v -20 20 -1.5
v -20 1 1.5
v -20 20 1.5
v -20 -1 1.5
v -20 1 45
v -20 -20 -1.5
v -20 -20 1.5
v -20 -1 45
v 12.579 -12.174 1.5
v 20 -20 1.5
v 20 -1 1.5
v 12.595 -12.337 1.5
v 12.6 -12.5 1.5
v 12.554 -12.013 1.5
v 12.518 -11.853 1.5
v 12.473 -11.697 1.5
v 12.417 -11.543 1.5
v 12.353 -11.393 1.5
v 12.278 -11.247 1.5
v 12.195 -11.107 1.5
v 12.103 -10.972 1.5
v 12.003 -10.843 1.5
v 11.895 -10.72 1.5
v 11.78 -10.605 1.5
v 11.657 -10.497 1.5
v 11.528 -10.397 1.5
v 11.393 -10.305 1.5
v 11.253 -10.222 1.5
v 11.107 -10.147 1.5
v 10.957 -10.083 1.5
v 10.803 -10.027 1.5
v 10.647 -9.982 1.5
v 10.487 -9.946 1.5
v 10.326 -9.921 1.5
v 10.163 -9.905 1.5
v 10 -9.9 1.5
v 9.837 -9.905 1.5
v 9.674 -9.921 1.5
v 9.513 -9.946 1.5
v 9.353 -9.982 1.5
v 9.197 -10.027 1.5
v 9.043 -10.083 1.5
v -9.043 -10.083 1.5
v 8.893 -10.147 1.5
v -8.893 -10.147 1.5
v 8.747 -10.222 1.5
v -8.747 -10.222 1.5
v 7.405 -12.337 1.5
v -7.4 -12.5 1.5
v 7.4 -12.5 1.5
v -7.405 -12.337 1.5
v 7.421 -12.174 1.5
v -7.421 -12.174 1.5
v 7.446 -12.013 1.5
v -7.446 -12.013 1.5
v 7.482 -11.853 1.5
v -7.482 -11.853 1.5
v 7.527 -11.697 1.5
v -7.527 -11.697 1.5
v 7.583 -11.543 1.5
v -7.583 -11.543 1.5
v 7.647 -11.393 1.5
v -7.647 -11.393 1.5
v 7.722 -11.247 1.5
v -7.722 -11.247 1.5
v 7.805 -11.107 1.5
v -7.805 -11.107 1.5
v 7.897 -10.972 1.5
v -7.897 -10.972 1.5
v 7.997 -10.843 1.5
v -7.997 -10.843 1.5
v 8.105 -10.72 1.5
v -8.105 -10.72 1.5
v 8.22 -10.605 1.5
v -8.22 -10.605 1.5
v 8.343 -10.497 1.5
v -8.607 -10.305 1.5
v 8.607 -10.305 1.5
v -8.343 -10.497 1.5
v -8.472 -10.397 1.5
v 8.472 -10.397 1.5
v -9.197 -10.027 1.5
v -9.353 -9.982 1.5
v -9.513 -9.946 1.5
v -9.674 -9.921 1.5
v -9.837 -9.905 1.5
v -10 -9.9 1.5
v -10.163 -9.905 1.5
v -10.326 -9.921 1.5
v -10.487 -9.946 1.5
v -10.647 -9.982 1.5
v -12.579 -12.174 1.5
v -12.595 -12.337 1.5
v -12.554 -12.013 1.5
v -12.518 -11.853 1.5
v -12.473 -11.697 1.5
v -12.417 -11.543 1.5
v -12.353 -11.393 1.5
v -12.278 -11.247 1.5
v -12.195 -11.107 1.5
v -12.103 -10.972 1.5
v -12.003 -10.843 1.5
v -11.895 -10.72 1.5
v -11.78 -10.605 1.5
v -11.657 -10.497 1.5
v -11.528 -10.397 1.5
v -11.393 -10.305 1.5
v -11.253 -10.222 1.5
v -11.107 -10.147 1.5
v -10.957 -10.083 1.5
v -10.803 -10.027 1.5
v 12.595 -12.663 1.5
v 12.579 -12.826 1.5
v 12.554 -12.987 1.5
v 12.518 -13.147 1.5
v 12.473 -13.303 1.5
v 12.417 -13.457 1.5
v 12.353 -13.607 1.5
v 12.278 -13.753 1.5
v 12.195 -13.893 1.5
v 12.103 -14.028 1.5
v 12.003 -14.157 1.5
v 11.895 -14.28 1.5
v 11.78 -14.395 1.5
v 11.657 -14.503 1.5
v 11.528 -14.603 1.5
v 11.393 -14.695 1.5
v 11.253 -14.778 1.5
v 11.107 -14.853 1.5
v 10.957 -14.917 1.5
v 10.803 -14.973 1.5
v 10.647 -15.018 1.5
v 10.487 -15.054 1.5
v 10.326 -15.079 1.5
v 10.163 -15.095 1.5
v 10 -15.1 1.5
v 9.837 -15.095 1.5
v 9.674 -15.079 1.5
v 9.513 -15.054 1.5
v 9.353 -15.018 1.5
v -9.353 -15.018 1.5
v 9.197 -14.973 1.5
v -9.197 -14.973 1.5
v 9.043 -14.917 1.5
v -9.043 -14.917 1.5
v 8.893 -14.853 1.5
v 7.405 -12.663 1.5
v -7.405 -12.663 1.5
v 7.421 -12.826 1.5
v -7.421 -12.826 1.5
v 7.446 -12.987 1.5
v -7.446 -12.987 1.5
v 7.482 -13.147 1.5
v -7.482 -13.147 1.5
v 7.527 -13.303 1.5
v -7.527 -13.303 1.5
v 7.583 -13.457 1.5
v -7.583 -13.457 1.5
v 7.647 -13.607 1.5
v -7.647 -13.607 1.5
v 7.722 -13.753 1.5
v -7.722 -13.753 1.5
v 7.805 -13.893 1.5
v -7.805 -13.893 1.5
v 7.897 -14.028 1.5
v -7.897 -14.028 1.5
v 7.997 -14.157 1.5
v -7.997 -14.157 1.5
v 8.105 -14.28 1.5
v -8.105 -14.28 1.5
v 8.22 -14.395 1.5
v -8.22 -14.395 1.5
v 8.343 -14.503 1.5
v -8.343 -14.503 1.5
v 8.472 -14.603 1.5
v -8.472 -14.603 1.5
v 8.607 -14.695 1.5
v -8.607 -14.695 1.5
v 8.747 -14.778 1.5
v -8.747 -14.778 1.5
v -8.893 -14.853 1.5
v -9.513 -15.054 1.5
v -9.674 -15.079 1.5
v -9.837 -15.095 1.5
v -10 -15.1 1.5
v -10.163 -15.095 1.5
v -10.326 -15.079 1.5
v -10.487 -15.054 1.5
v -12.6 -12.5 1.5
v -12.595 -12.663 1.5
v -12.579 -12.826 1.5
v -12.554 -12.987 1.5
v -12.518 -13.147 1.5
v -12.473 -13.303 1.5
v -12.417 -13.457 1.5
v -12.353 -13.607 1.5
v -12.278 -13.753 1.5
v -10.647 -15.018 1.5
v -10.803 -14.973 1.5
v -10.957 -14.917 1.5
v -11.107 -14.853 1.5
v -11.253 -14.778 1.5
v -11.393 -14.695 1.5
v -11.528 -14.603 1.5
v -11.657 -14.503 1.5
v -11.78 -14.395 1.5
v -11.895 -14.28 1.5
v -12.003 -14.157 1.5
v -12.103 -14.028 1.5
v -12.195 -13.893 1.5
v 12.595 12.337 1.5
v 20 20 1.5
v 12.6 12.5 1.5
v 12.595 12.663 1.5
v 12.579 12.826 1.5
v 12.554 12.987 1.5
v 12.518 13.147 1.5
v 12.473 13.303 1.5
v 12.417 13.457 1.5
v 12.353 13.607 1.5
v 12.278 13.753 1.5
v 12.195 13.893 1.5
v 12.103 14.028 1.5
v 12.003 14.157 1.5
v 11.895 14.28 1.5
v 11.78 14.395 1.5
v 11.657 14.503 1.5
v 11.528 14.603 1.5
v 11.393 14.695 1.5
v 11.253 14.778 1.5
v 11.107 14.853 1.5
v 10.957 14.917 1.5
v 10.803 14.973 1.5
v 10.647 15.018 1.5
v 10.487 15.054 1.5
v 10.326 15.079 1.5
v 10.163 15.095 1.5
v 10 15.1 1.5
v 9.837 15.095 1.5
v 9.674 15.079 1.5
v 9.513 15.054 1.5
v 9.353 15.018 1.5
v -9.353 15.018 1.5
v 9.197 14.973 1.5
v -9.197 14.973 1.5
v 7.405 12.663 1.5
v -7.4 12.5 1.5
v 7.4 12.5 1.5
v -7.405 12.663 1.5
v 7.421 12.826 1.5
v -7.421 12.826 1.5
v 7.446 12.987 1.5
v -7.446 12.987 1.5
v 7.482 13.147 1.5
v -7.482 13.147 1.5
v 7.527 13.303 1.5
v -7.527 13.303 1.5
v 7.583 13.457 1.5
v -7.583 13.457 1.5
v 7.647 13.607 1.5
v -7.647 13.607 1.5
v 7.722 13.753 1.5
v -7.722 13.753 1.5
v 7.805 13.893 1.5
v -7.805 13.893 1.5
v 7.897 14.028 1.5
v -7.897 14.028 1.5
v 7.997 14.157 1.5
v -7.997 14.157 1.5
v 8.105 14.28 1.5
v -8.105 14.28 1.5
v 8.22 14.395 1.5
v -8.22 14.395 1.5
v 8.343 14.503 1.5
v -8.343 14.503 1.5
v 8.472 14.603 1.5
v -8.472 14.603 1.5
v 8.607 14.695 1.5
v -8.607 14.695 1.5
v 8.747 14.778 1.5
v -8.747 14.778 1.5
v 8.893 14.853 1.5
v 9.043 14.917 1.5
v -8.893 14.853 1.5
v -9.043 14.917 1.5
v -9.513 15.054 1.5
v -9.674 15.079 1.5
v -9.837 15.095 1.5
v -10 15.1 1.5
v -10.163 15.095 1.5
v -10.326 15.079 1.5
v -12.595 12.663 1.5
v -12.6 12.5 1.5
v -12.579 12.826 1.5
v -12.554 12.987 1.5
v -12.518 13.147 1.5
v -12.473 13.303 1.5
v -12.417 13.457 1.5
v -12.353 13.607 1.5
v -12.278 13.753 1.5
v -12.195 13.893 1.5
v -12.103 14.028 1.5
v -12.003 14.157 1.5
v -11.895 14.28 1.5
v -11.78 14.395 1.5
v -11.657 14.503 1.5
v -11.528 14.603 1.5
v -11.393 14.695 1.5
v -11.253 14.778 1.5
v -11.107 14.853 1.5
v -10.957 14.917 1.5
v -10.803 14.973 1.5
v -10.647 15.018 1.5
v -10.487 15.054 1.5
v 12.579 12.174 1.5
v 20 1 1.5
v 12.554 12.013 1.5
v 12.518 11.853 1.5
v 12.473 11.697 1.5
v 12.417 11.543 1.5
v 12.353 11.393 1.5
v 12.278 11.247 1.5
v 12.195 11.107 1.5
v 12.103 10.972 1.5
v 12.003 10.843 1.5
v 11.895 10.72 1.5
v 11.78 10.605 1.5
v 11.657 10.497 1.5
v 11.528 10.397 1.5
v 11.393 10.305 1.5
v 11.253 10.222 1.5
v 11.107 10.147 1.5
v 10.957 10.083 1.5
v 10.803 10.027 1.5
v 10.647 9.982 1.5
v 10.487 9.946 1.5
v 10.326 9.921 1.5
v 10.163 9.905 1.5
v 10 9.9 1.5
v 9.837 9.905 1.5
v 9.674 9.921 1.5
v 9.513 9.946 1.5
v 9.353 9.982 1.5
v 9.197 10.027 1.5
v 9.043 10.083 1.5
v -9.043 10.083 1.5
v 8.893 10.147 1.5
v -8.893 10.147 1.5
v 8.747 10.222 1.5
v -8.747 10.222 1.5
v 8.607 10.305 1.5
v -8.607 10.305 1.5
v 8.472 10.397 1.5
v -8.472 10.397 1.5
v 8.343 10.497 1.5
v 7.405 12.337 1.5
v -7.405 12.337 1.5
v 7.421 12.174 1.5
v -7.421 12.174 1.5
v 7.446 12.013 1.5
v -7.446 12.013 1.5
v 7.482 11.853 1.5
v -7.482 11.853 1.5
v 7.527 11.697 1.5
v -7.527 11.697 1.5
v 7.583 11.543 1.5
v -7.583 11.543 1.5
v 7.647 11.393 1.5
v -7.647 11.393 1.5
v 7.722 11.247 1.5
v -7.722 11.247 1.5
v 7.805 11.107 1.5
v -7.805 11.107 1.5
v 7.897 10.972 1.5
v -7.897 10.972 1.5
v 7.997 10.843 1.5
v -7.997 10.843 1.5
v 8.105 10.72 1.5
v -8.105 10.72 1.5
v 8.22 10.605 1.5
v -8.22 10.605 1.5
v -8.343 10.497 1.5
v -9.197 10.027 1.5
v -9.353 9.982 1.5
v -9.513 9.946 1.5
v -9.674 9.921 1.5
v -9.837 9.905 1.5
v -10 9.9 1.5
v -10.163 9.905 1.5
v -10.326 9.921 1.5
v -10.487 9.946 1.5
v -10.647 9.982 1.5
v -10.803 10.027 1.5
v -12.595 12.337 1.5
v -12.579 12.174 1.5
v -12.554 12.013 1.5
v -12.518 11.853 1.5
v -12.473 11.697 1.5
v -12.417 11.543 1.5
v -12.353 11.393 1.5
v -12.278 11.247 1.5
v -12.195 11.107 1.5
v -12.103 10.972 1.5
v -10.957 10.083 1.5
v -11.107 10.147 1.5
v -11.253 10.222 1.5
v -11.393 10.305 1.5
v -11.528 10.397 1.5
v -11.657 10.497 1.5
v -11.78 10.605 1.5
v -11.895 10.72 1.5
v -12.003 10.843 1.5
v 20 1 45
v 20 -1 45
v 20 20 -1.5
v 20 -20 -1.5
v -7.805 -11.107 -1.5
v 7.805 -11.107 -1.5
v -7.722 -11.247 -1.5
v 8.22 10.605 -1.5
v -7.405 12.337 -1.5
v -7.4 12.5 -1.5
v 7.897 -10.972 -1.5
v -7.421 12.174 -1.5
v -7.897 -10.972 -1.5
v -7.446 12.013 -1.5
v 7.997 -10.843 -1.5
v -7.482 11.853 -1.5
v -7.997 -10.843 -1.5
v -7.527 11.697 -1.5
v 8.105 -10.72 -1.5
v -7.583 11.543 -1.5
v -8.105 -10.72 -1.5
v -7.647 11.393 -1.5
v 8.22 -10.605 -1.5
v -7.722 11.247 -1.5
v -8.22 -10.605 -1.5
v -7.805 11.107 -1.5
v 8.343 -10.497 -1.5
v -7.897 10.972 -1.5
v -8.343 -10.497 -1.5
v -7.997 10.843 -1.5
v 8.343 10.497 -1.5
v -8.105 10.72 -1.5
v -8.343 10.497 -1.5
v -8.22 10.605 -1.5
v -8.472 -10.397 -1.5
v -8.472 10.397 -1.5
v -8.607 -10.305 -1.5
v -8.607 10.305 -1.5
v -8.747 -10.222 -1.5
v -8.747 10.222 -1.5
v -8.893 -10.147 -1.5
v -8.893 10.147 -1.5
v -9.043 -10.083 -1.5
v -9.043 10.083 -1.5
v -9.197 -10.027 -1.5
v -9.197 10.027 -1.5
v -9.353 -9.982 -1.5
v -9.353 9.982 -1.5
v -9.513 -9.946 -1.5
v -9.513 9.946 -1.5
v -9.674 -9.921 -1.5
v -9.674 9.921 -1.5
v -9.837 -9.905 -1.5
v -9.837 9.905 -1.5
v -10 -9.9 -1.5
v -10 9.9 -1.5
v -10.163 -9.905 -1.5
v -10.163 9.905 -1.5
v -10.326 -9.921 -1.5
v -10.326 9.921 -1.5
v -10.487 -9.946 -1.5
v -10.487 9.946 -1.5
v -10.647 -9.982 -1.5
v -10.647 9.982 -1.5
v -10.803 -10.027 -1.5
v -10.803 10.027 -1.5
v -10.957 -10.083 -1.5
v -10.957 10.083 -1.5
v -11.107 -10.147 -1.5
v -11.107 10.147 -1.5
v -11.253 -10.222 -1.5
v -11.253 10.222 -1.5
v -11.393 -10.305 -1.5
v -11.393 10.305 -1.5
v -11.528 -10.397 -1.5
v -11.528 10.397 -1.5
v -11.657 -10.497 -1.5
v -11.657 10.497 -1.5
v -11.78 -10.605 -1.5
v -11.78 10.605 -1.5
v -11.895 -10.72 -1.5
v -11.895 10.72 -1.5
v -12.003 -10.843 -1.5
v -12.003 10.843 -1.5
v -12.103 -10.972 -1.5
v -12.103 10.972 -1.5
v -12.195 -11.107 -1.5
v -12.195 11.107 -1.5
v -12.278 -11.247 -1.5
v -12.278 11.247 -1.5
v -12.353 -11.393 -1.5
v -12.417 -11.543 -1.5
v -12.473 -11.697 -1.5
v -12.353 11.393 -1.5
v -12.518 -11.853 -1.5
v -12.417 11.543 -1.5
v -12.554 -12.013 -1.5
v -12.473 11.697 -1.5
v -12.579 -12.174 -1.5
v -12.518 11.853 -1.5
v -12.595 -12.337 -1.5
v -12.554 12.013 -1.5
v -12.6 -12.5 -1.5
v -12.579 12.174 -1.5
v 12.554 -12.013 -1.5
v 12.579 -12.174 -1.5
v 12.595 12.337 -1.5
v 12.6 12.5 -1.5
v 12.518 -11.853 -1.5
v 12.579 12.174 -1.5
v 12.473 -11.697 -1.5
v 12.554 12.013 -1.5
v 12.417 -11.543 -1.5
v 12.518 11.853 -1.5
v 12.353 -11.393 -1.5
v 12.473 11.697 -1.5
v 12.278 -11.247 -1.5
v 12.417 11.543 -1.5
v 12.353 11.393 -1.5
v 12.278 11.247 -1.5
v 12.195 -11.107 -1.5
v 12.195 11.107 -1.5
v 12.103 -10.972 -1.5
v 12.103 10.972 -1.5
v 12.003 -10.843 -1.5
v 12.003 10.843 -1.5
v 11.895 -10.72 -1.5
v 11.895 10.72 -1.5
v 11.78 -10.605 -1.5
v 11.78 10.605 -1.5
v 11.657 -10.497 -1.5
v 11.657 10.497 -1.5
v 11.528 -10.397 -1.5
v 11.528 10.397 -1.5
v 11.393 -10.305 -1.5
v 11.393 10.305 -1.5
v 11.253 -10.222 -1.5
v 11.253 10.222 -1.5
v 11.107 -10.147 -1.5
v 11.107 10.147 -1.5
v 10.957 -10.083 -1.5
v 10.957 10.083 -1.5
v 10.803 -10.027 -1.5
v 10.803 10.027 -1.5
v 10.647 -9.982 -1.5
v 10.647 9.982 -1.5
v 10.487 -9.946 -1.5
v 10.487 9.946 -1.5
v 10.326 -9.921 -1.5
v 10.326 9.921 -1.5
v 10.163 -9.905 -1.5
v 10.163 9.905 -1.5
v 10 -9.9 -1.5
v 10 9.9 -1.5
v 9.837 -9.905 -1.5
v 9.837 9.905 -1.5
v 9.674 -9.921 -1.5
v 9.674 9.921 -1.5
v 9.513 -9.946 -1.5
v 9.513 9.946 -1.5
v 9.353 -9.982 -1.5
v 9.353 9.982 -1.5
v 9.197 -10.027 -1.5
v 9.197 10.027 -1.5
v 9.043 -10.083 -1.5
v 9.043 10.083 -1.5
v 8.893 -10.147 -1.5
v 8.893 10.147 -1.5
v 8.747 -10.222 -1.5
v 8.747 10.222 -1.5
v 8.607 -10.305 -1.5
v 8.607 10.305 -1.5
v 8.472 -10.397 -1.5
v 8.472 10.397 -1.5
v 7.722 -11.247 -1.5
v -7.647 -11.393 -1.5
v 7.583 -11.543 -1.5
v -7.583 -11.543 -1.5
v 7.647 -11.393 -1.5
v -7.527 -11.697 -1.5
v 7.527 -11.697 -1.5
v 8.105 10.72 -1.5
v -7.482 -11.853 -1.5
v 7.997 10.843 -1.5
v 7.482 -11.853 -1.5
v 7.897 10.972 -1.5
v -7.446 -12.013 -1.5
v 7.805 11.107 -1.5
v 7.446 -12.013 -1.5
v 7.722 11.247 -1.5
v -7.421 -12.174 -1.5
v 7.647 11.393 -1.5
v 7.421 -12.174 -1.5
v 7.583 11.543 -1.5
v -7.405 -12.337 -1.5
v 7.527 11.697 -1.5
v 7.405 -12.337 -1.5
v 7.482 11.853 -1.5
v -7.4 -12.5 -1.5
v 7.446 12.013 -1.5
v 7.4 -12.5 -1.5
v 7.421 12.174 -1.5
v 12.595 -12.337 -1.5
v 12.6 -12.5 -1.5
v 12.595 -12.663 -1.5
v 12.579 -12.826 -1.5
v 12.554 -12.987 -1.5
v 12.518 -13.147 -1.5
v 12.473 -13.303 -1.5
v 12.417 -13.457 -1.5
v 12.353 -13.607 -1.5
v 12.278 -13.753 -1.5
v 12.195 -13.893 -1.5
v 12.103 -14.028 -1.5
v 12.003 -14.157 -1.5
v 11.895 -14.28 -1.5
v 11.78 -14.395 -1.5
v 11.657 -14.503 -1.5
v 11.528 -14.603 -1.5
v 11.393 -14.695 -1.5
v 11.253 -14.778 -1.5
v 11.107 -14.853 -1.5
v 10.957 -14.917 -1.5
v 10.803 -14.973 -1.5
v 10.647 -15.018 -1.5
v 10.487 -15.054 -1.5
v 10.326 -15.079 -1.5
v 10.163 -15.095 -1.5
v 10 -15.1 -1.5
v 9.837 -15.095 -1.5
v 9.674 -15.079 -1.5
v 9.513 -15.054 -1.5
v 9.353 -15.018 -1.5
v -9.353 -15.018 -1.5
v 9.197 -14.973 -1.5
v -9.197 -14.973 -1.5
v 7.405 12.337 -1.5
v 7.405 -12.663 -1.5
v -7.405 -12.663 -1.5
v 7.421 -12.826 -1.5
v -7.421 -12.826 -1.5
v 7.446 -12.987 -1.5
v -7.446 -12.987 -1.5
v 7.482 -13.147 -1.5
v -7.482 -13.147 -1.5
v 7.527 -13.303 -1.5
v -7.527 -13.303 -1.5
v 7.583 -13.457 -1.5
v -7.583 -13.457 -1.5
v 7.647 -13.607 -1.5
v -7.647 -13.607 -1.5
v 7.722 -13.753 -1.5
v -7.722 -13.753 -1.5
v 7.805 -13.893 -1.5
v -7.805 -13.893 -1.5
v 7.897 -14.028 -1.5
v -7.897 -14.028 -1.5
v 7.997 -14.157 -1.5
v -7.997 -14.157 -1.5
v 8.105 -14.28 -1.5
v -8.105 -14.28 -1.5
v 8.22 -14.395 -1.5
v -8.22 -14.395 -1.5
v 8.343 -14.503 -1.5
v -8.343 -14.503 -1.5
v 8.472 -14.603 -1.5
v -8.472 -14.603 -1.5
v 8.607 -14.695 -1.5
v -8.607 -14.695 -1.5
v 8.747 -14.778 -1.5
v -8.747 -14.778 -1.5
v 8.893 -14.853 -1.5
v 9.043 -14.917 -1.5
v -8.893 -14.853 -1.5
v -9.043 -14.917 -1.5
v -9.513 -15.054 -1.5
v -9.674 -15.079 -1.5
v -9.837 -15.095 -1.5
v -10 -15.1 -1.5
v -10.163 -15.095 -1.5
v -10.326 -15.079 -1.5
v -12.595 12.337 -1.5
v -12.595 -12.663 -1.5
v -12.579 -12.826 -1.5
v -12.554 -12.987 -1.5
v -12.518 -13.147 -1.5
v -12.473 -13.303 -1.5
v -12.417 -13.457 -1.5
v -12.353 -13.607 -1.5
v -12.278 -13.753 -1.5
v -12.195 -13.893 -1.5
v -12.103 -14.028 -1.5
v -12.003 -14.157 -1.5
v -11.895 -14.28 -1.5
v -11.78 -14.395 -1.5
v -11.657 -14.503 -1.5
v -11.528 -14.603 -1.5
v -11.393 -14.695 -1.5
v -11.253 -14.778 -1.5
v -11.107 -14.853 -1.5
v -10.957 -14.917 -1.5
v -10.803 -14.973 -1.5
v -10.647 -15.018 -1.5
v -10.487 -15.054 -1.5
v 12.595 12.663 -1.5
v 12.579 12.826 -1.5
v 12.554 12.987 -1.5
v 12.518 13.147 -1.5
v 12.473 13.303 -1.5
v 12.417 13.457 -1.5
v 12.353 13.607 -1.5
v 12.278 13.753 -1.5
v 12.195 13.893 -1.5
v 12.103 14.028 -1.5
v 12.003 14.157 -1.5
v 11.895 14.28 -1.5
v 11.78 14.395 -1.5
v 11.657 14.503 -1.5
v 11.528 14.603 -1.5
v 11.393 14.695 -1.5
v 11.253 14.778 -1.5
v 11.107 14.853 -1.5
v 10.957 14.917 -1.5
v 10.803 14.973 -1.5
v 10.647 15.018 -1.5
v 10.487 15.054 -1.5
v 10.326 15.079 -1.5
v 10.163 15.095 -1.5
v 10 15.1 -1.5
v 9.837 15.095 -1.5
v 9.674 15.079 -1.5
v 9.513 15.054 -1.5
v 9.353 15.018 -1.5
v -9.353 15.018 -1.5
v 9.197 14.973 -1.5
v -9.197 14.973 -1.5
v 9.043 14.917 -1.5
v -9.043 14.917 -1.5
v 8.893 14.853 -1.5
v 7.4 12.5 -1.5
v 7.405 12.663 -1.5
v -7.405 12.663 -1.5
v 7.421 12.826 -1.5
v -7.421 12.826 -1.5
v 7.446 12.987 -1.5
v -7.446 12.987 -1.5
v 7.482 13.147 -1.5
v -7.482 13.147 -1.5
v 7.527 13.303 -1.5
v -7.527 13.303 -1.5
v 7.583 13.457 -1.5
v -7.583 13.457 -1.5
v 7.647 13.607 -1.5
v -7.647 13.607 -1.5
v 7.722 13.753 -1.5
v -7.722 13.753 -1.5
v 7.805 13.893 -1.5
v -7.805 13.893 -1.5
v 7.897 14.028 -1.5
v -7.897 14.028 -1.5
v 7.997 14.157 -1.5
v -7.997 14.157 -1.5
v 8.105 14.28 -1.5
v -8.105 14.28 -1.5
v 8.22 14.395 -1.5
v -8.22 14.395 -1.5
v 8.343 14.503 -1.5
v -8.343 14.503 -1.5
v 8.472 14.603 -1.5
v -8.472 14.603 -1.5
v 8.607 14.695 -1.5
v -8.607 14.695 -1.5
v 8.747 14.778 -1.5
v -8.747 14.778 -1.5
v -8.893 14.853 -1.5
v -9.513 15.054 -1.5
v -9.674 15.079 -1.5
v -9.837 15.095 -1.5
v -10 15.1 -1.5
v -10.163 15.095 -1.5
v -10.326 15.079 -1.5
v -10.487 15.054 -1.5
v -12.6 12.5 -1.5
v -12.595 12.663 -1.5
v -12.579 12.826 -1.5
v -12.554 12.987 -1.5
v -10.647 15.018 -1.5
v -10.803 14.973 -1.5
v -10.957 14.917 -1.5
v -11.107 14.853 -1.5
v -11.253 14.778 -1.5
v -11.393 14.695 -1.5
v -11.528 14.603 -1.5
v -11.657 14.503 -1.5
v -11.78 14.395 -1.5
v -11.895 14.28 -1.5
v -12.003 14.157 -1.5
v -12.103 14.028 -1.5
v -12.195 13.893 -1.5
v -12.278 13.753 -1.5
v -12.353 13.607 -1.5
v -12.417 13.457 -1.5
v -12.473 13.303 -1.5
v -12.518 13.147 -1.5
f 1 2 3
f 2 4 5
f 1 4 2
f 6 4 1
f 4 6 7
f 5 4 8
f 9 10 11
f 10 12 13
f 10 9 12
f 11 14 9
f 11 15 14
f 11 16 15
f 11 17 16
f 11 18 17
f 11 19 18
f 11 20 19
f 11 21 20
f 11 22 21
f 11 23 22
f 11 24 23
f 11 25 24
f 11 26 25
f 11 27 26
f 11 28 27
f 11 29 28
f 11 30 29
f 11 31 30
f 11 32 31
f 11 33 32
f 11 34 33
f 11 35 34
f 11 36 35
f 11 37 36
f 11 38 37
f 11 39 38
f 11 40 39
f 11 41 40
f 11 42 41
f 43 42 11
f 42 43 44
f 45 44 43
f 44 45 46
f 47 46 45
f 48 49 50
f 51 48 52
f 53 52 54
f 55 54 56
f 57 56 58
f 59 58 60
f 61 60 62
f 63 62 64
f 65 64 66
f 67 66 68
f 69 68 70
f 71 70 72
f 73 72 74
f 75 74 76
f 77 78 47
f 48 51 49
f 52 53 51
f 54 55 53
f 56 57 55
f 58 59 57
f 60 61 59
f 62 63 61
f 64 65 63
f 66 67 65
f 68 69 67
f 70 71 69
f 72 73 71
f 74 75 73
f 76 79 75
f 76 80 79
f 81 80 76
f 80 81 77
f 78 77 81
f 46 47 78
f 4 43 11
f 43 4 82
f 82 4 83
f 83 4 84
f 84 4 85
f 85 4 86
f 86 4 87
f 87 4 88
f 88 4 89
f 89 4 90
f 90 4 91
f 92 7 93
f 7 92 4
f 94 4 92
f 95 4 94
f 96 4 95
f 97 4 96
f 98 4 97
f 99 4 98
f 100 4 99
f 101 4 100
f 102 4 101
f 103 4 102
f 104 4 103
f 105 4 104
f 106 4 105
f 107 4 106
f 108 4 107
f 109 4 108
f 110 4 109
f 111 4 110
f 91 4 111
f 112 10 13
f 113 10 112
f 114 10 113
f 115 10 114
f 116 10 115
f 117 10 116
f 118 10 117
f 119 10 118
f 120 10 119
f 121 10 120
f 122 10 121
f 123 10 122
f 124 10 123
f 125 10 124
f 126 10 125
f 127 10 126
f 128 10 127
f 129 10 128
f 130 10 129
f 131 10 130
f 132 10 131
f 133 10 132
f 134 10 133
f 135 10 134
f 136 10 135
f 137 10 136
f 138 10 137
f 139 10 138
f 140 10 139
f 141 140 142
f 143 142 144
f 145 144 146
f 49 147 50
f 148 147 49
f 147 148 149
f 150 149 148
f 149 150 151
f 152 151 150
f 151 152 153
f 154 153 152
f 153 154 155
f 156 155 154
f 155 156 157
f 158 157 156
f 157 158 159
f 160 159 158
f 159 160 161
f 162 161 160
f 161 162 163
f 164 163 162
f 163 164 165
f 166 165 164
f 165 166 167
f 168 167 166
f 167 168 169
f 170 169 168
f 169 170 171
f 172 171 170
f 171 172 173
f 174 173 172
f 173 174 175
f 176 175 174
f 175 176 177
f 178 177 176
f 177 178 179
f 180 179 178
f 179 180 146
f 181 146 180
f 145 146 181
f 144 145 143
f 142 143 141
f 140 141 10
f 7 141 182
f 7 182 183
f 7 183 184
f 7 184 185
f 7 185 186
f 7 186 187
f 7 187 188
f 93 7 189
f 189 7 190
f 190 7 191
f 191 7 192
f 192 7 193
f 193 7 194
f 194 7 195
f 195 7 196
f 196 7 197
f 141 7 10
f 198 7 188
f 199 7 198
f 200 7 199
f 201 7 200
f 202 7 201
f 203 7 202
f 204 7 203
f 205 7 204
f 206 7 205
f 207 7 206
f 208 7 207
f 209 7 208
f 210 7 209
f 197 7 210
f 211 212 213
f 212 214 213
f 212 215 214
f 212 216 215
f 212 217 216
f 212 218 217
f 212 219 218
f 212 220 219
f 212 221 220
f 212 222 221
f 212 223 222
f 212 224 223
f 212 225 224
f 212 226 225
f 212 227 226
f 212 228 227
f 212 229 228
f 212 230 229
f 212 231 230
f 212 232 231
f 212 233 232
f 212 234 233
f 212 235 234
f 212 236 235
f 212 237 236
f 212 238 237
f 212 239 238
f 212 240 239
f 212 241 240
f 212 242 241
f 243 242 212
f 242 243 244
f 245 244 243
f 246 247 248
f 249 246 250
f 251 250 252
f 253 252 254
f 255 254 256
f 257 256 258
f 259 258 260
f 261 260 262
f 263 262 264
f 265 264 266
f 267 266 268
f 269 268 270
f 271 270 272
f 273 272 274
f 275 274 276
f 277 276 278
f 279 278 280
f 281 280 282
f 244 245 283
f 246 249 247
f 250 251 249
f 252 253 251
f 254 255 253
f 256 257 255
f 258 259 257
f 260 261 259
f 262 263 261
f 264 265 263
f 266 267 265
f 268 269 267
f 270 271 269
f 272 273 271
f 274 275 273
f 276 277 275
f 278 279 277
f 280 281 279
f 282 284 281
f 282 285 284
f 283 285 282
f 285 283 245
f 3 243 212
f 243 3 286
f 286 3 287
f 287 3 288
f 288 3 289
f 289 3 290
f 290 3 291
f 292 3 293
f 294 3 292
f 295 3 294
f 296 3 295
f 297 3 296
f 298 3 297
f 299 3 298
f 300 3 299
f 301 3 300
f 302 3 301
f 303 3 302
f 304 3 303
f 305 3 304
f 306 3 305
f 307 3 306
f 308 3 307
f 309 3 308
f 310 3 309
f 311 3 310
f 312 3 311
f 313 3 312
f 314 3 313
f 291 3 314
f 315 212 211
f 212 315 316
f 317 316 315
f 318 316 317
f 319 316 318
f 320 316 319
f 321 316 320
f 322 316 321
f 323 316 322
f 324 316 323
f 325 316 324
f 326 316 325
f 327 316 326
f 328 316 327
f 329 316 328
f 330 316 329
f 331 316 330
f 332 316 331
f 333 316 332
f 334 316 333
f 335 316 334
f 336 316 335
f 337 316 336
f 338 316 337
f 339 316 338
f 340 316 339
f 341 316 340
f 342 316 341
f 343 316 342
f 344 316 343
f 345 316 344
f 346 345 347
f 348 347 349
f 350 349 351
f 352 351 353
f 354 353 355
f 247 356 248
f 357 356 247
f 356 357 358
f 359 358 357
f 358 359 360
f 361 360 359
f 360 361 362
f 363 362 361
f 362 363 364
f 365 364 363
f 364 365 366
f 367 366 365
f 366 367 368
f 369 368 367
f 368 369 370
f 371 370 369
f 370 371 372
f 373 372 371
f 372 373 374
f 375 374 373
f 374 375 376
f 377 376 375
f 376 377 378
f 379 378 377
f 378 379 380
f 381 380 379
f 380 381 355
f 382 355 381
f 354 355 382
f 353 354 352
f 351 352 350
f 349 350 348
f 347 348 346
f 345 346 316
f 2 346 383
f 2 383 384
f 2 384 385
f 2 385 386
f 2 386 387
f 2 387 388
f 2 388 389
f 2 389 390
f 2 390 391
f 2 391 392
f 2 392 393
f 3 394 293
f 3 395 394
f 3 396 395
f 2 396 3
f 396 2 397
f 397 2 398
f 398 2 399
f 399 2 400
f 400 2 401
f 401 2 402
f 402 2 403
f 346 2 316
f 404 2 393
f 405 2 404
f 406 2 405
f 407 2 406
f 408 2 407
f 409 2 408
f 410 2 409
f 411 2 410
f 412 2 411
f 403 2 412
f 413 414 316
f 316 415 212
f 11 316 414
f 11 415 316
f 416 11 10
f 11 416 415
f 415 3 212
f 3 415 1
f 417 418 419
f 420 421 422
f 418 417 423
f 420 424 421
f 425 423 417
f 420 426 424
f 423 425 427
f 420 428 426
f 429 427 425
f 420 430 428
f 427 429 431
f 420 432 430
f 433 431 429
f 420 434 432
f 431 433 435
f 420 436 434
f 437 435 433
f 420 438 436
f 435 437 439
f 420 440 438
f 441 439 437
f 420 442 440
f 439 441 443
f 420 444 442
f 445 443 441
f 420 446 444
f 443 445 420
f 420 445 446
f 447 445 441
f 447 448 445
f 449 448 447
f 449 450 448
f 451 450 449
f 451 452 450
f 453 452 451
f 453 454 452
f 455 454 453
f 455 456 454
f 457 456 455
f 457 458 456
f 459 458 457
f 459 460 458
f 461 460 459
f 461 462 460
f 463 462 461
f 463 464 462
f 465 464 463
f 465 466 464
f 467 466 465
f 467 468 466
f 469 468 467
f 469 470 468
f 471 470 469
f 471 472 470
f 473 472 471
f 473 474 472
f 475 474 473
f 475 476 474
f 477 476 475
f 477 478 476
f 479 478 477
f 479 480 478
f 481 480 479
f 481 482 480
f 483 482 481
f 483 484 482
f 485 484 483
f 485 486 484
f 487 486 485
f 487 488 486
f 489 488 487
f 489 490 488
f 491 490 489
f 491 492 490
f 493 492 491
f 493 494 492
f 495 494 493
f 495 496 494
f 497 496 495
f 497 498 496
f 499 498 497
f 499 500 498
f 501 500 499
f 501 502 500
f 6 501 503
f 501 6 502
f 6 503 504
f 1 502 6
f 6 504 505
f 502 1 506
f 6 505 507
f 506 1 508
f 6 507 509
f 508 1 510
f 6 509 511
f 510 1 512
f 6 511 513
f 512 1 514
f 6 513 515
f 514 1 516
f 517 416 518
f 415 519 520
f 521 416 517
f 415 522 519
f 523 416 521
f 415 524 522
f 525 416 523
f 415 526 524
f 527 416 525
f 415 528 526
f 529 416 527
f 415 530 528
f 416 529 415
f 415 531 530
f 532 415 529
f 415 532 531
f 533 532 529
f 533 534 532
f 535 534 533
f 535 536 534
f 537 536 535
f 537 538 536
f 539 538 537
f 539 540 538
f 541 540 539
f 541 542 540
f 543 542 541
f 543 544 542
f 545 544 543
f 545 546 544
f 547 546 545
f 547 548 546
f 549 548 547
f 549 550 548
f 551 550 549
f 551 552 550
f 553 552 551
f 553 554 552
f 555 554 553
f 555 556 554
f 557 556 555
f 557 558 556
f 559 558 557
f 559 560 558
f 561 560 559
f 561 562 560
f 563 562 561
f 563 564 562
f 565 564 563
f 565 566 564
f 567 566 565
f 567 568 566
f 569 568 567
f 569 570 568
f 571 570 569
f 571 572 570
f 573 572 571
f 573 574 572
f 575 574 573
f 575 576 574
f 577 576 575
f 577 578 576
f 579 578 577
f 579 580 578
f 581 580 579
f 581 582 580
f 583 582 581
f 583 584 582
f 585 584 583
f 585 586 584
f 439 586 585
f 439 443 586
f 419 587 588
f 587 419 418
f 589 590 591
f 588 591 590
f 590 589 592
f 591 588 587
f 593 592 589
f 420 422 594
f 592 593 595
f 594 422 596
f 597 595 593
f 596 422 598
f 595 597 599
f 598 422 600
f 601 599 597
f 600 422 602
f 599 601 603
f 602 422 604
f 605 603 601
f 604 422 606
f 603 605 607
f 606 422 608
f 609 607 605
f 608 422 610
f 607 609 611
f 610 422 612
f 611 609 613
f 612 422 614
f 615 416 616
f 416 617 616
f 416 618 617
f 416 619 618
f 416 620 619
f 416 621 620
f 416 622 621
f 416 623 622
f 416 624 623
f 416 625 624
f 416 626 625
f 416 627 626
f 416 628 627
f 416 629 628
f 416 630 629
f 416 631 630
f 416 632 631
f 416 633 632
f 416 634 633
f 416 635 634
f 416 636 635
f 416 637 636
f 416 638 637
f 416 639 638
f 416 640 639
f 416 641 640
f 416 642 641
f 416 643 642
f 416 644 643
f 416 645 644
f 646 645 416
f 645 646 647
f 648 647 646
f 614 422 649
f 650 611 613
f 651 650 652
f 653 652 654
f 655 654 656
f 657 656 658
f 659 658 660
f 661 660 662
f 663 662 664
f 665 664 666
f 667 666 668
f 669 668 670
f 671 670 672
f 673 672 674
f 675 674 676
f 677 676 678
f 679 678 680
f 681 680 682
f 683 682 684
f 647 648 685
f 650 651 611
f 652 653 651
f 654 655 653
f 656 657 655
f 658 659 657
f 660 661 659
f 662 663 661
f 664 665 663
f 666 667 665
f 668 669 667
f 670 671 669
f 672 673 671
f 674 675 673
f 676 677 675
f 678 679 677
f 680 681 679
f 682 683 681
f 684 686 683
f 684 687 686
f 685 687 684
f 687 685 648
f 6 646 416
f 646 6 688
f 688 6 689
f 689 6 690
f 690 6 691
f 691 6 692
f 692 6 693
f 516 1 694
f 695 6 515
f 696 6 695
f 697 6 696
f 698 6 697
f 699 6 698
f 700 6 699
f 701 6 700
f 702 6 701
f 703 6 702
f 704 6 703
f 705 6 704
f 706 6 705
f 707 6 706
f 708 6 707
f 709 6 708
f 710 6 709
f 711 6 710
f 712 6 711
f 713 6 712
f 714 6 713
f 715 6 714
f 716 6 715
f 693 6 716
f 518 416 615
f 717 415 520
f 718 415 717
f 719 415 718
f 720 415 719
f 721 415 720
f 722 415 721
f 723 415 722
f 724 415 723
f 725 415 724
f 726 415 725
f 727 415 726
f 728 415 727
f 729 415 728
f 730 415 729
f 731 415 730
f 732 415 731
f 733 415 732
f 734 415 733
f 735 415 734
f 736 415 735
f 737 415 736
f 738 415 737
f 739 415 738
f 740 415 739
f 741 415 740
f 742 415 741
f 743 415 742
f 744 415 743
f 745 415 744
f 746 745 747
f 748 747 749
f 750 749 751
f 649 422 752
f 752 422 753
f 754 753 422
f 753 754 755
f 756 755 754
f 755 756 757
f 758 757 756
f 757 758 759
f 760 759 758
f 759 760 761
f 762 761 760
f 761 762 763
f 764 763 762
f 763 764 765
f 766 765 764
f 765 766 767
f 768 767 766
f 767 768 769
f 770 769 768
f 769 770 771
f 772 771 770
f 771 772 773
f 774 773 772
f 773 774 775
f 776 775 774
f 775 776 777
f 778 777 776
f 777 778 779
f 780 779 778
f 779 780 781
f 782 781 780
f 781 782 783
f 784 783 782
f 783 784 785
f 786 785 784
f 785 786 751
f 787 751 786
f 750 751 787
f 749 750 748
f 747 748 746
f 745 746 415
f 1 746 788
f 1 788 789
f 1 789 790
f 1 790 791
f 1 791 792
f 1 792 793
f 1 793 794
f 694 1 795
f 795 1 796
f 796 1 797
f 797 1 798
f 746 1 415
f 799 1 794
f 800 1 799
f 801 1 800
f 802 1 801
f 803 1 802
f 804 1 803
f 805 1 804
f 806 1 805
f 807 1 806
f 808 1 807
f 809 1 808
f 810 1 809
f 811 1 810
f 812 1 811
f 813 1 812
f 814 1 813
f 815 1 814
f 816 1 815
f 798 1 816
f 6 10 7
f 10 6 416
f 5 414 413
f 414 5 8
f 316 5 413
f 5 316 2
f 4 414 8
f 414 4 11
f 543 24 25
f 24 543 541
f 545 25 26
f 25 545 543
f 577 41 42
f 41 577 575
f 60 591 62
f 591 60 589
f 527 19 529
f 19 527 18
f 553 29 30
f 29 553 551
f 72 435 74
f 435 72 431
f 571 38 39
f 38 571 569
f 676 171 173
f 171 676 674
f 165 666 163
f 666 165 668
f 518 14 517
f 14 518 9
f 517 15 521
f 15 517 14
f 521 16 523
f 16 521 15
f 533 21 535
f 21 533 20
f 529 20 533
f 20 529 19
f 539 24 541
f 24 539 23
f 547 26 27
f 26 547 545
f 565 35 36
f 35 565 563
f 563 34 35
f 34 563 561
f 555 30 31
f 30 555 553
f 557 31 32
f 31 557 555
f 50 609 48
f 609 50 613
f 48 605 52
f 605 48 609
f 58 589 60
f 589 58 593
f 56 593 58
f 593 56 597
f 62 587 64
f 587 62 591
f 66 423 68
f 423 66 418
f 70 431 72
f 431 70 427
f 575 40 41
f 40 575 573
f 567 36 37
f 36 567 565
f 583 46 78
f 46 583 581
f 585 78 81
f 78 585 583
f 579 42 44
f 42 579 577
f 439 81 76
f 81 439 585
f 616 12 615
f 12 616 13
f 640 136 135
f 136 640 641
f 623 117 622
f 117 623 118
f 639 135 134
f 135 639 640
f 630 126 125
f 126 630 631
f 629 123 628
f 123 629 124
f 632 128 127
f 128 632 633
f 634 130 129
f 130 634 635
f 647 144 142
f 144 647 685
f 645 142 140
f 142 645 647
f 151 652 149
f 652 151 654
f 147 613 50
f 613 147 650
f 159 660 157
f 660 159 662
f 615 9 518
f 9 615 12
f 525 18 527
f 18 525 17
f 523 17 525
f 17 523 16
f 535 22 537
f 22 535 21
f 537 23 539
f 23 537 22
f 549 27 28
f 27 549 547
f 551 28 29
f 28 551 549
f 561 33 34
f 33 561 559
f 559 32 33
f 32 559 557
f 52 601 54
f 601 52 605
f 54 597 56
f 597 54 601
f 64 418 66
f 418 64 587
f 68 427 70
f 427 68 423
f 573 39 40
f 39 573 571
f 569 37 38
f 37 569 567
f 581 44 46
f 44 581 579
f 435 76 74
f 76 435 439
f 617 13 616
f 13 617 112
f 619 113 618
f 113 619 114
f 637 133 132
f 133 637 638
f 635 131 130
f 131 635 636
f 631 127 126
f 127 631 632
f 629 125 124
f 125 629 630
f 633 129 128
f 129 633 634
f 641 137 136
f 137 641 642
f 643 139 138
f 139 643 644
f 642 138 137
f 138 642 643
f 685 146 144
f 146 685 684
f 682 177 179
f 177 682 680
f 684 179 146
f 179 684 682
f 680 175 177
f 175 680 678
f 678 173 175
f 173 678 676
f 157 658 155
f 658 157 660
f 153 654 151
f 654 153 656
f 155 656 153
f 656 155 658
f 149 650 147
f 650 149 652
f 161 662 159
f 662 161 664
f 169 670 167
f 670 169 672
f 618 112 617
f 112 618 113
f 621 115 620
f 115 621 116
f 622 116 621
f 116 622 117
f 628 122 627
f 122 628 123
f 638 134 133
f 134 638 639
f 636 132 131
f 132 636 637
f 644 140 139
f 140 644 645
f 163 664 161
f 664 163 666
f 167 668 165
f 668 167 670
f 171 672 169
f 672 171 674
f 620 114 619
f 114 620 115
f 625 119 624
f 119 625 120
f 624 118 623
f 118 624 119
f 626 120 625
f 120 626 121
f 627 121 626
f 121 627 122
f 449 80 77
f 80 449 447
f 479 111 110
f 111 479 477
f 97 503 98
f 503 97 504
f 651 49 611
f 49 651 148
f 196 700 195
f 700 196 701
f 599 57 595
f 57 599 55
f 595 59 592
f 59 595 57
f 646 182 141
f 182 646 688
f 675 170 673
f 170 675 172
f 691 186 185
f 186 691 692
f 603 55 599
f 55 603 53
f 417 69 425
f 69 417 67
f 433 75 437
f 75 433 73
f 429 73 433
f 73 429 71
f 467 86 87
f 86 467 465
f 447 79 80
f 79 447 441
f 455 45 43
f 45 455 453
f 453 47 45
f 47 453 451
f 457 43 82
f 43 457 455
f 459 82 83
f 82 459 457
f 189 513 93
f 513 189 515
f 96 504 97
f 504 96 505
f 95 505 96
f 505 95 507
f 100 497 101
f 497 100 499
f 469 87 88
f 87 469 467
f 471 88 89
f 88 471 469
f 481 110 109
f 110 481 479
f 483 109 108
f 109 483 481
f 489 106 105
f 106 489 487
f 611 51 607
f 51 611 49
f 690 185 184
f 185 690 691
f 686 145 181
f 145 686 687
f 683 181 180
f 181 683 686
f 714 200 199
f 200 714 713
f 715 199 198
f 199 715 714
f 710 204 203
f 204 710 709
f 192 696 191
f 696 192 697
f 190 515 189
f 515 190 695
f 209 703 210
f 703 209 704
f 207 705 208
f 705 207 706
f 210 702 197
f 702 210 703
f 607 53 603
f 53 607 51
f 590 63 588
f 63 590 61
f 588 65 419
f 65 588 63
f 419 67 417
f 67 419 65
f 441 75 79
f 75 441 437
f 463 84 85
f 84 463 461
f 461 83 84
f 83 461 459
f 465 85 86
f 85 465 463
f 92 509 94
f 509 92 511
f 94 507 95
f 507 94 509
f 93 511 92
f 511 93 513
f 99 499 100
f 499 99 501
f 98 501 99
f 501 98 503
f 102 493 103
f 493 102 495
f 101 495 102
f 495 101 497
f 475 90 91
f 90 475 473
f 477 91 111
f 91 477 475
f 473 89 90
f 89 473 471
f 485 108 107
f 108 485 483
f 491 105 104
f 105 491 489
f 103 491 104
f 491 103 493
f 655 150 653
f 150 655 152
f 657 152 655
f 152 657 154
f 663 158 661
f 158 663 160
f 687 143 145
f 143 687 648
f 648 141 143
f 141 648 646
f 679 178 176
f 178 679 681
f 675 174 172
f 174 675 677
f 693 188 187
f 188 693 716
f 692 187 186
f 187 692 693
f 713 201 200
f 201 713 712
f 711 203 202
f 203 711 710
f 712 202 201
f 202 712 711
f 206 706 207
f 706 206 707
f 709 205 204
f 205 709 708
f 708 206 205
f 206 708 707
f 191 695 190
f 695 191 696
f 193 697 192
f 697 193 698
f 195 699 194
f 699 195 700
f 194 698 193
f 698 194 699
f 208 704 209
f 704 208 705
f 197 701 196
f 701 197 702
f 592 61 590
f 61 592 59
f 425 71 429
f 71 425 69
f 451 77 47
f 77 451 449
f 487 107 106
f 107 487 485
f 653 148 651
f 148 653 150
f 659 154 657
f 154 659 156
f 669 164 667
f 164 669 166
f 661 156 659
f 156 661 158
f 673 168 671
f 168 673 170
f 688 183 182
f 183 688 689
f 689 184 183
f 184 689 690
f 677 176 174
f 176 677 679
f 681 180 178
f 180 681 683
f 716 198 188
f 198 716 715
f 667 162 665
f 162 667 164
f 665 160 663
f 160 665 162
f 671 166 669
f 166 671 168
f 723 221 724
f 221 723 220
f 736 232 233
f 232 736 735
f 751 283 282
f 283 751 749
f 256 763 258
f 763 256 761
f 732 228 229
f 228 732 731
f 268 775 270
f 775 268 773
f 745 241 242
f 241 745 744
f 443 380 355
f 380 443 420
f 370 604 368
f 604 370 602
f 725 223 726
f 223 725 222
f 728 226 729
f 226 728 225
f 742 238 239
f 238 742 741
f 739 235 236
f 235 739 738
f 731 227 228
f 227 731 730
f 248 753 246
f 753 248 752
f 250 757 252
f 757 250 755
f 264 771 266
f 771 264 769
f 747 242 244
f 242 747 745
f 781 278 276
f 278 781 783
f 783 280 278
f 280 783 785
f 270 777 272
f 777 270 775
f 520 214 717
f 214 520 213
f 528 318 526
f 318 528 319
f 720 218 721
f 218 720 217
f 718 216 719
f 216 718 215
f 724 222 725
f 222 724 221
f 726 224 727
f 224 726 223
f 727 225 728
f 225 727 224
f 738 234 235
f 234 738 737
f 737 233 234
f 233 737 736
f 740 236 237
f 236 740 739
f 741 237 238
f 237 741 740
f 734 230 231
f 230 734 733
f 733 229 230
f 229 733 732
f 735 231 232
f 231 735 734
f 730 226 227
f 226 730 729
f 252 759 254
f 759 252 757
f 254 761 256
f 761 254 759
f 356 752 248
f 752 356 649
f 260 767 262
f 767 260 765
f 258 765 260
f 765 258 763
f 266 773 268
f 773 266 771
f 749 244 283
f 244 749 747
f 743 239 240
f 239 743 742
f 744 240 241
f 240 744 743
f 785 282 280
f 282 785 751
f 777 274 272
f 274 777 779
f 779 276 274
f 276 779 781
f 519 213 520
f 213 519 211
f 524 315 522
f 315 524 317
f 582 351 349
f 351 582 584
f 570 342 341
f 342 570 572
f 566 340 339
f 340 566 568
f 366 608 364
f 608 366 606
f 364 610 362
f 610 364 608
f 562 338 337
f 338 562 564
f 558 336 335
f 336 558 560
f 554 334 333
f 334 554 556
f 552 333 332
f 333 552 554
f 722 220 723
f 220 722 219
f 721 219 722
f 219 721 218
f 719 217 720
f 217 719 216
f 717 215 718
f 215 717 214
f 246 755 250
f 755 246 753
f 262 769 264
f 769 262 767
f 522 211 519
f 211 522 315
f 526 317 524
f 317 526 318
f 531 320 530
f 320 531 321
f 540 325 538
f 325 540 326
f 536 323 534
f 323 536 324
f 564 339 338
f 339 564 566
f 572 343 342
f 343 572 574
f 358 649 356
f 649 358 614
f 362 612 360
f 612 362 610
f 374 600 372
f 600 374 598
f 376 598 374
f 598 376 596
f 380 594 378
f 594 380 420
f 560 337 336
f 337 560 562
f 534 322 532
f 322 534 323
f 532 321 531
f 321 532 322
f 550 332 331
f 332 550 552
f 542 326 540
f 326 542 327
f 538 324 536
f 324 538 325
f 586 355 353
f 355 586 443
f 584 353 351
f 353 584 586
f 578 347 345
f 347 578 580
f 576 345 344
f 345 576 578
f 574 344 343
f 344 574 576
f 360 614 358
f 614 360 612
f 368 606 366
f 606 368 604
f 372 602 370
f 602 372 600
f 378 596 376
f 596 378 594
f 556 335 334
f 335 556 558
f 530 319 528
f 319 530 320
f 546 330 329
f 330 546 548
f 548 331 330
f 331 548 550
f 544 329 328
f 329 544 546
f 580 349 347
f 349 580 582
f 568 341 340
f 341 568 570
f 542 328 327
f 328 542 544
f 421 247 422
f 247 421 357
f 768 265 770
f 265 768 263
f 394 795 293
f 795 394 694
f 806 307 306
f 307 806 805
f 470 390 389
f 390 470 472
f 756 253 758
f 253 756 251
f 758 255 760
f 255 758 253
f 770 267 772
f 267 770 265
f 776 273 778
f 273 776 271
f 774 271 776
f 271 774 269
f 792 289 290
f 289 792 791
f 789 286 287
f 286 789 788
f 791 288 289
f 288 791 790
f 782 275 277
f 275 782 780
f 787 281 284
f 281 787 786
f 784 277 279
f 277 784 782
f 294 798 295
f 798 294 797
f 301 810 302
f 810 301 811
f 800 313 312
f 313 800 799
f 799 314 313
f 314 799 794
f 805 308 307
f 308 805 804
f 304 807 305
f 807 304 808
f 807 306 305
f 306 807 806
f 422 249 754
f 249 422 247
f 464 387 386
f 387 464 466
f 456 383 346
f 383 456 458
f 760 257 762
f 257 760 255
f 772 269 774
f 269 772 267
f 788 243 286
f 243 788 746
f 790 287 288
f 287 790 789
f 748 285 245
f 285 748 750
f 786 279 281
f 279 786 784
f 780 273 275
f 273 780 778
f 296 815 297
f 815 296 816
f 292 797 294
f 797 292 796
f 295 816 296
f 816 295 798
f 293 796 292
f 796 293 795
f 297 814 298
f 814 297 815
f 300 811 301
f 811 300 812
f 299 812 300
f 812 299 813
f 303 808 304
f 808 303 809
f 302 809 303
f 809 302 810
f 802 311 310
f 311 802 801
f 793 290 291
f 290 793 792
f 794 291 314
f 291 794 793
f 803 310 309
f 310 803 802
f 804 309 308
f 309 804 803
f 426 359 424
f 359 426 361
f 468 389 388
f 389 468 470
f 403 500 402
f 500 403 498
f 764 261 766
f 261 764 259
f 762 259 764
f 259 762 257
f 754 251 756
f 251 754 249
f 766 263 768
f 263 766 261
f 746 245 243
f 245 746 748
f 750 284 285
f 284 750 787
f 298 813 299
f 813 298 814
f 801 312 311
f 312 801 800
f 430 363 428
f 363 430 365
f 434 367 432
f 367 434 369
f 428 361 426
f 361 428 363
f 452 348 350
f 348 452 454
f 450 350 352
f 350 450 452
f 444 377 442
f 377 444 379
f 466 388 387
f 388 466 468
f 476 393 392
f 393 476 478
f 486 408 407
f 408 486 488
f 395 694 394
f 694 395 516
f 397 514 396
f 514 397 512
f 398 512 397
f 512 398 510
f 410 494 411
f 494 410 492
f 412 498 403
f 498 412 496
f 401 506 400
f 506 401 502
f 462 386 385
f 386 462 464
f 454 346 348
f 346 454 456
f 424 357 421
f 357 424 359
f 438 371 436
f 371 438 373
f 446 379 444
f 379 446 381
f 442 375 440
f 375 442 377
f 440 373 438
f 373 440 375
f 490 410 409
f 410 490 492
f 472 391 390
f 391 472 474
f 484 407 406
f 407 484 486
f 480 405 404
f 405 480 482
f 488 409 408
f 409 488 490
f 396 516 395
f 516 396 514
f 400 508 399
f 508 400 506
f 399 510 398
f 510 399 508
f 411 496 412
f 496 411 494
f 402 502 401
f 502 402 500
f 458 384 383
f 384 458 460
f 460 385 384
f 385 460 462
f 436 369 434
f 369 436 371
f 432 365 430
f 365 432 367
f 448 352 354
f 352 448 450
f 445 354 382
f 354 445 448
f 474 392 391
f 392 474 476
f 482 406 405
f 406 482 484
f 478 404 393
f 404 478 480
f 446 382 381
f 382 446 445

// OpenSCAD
// endstop dimensions

$fn=100;

e_x=35;
e_y=11;
u_left=11.3;
u_right=17.7;
bh=28;
in=25.4;

m3=3.2/2;

z=3;


shift=e_x/2-z/2-u_right;
shift1=-e_x/2+z/2+u_left;
module top_stop(height=in+10){
difference(){
    union(){
        cube([e_x,e_y*2.5,z],center=true);
        translate([shift,0,height/2+z/2])
        cube([z-.5,e_y*2.5,height],center=true);
//        translate([shift1,e_y,height/2+z/2])
//        cube([z,e_y,height],center=true);
    }
    
    translate([bh/2,0,-3])
    cylinder(100,m3,m3);
    translate([-bh/2,0,-3])
    cylinder(100,m3,m3);
}
}

module bracket(){
    difference(){
        cube([e_x+6,e_y,120],center=true);
        cube([e_x,e_y+3,120-6],center=true);
        translate([bh/2,0,-75])
        cylinder(150,m3,m3);
        translate([-bh/2,0,-75])
        cylinder(150,m3,m3);
    }
}

module bottom_stop() {
    difference(){
        union(){
            cube([40,40,3],center=true);
            translate([0,0,45/2])
            cube([40,2,45],center=true);
        }
        translate([10,-12.5,-5])
        cylinder(100,2.6,2.6);
        translate([-10,-12.5,-5])
        cylinder(100,2.6,2.6);
        translate([10,12.5,-5])
        cylinder(100,2.6,2.6);
        translate([-10,12.5,-5])
        cylinder(100,2.6,2.6);
        
    }
}
    
bottom_stop();
